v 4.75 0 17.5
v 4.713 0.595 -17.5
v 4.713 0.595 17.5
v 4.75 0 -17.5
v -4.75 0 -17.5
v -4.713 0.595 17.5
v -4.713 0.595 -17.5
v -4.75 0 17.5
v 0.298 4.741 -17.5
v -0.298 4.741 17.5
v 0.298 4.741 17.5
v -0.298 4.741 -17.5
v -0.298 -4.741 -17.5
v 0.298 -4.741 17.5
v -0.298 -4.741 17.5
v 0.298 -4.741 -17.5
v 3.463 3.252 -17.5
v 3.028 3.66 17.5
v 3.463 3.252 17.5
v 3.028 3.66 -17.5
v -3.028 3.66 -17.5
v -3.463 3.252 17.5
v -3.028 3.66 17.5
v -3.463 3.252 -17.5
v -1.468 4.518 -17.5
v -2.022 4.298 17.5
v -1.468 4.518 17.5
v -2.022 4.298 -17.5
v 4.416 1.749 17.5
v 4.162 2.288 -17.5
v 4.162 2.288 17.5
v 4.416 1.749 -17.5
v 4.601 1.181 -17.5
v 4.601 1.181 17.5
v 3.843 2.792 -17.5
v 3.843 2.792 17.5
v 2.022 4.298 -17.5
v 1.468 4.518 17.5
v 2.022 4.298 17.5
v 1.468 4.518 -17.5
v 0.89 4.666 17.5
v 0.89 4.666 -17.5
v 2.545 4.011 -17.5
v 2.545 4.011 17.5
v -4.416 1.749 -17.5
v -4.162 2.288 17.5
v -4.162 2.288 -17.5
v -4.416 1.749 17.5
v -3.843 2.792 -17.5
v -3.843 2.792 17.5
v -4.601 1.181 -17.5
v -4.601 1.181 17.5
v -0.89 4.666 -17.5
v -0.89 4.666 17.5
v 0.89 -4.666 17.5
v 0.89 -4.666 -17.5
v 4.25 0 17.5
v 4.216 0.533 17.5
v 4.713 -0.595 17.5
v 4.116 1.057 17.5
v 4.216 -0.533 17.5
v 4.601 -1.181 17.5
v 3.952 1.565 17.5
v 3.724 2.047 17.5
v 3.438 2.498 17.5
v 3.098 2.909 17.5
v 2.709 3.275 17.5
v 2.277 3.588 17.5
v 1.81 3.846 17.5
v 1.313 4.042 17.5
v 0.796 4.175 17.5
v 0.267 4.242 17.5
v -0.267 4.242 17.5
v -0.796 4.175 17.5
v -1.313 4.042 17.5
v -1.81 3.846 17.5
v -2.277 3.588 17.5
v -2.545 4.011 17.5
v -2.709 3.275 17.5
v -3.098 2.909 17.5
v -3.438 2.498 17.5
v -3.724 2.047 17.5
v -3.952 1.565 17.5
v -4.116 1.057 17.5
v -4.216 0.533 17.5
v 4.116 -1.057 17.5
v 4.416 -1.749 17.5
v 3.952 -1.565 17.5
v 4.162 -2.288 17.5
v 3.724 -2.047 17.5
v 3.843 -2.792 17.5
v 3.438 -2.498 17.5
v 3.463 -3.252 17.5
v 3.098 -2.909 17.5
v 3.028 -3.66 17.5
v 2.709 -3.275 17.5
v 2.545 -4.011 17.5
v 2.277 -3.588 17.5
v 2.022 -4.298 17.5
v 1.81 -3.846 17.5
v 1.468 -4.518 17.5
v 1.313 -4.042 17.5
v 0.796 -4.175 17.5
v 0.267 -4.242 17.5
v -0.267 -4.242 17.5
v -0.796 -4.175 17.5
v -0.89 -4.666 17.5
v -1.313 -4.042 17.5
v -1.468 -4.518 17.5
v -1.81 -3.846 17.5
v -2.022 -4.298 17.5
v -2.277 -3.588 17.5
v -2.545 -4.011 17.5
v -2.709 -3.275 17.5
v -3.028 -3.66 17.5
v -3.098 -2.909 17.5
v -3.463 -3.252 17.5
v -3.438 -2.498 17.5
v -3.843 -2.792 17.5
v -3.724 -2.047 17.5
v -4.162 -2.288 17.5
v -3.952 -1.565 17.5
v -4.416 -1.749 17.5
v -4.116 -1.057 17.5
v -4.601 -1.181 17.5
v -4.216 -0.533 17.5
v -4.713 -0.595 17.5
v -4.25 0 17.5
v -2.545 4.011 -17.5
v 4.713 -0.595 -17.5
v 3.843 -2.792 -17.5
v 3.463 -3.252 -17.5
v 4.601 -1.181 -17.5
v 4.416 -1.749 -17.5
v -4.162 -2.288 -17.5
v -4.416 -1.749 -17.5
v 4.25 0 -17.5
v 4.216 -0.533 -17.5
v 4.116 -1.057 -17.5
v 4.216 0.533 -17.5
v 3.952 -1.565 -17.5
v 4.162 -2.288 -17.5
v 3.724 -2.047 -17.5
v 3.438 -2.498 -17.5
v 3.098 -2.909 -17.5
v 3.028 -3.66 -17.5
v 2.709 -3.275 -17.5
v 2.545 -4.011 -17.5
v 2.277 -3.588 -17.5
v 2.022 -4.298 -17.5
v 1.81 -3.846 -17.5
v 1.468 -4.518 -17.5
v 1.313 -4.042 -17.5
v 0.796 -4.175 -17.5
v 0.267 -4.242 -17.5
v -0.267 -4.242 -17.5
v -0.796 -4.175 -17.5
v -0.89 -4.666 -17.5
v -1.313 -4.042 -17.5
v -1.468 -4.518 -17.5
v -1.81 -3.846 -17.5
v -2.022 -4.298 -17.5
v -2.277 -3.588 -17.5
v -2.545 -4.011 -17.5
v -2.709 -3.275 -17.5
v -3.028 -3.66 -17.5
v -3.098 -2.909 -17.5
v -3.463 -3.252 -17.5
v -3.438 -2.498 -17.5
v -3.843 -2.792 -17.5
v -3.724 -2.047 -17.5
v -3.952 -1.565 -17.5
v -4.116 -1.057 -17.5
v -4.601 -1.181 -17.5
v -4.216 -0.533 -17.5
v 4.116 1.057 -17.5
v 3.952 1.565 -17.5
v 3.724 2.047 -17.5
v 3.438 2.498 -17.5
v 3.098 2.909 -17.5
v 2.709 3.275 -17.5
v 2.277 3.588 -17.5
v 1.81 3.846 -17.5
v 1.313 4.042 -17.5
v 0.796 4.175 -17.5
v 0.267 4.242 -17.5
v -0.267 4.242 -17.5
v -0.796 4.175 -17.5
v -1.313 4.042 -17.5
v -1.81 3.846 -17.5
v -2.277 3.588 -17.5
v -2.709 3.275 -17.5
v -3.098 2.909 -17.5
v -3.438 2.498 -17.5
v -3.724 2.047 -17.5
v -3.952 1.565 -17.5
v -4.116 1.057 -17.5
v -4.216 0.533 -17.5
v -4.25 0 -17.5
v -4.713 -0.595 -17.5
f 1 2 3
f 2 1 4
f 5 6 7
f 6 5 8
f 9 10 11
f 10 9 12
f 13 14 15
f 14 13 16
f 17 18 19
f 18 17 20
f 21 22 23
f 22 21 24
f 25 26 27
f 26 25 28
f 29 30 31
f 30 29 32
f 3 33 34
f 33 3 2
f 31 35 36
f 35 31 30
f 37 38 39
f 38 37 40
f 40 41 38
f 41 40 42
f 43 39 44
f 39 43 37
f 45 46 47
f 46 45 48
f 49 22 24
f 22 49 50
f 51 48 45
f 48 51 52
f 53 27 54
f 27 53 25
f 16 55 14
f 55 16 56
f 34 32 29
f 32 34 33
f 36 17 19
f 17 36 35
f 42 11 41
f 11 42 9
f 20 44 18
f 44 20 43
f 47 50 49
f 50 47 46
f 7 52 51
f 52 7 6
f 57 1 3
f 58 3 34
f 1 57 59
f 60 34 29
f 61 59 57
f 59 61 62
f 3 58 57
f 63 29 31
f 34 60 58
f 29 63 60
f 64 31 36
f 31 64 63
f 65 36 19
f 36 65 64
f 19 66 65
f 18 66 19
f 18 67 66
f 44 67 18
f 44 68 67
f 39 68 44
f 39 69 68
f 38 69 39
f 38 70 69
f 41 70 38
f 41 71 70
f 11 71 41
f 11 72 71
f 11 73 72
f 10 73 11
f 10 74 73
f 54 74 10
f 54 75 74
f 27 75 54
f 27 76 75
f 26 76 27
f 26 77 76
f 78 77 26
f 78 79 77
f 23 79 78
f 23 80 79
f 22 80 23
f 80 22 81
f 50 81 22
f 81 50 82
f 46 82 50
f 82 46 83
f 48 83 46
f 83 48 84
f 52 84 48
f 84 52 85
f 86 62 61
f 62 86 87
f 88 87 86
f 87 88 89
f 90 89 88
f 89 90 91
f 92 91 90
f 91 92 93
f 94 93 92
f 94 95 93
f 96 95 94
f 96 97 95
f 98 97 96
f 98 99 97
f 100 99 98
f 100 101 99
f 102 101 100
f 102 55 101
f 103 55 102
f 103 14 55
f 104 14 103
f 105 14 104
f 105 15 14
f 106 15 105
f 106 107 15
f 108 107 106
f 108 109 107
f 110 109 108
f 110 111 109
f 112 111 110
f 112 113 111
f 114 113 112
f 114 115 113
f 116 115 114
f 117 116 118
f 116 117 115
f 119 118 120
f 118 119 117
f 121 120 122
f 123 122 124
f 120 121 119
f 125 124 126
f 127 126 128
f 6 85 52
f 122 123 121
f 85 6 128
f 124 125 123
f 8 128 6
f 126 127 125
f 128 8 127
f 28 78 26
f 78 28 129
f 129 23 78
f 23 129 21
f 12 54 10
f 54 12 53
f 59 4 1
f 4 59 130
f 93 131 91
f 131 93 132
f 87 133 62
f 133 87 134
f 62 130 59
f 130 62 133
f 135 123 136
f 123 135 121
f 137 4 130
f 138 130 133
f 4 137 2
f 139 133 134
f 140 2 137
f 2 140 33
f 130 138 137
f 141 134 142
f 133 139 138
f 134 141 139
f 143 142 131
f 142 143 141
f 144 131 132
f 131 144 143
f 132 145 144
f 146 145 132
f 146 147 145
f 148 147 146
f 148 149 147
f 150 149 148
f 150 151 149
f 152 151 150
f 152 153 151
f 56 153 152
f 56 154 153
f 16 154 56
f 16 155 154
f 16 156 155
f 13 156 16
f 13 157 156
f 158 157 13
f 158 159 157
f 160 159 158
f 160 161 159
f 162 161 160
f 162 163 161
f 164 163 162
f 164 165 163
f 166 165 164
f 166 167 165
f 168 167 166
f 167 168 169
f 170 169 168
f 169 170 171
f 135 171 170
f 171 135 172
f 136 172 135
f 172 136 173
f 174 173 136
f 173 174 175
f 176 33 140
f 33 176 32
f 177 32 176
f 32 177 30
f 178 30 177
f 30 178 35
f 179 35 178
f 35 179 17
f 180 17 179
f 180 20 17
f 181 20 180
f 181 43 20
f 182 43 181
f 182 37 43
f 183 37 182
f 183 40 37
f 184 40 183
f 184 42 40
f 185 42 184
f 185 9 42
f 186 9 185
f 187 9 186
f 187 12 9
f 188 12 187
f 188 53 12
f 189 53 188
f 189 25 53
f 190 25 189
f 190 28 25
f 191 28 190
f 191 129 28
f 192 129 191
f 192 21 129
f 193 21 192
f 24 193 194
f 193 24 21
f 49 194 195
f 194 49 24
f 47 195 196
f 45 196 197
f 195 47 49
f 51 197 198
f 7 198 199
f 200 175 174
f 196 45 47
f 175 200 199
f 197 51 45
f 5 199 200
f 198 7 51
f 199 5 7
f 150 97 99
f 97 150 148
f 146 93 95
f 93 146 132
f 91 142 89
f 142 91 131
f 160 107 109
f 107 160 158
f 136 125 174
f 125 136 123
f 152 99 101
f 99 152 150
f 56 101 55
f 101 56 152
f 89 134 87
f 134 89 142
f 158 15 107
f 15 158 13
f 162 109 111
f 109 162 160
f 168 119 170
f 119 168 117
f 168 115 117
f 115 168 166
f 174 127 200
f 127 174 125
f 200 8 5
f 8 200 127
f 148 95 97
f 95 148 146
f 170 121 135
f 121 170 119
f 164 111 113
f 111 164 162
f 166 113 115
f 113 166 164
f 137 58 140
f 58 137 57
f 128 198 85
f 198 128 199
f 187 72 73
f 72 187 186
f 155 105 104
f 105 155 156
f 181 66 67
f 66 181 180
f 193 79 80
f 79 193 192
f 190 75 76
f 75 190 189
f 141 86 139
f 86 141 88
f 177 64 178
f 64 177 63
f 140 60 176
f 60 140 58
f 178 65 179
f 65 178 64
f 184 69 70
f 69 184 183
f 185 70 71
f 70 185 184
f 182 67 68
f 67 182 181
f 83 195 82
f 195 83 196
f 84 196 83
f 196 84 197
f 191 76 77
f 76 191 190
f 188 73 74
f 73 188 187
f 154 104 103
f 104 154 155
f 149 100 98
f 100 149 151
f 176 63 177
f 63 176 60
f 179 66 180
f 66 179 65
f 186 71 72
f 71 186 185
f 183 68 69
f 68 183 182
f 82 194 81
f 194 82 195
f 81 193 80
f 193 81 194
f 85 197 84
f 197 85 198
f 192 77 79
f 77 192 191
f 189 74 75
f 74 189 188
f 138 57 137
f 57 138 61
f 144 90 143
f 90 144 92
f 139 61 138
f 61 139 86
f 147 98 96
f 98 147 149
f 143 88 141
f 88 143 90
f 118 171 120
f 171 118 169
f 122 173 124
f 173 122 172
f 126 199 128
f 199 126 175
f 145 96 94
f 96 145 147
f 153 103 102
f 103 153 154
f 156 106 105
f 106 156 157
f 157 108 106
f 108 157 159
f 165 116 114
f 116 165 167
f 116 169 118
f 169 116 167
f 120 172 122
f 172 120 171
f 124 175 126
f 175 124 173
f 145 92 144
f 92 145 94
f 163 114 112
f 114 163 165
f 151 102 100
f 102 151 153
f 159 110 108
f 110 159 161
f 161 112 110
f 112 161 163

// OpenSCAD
$fn = 50;


difference() {
	union() {
		translate(v = [0, 0, -17.5000000000]) {
			cylinder(h = 35, r = 4.7500000000);
		}
	}
	union() {
		translate(v = [0, 0, -100.0000000000]) {
			cylinder(h = 200, r = 4.2500000000);
		}
	}
}
